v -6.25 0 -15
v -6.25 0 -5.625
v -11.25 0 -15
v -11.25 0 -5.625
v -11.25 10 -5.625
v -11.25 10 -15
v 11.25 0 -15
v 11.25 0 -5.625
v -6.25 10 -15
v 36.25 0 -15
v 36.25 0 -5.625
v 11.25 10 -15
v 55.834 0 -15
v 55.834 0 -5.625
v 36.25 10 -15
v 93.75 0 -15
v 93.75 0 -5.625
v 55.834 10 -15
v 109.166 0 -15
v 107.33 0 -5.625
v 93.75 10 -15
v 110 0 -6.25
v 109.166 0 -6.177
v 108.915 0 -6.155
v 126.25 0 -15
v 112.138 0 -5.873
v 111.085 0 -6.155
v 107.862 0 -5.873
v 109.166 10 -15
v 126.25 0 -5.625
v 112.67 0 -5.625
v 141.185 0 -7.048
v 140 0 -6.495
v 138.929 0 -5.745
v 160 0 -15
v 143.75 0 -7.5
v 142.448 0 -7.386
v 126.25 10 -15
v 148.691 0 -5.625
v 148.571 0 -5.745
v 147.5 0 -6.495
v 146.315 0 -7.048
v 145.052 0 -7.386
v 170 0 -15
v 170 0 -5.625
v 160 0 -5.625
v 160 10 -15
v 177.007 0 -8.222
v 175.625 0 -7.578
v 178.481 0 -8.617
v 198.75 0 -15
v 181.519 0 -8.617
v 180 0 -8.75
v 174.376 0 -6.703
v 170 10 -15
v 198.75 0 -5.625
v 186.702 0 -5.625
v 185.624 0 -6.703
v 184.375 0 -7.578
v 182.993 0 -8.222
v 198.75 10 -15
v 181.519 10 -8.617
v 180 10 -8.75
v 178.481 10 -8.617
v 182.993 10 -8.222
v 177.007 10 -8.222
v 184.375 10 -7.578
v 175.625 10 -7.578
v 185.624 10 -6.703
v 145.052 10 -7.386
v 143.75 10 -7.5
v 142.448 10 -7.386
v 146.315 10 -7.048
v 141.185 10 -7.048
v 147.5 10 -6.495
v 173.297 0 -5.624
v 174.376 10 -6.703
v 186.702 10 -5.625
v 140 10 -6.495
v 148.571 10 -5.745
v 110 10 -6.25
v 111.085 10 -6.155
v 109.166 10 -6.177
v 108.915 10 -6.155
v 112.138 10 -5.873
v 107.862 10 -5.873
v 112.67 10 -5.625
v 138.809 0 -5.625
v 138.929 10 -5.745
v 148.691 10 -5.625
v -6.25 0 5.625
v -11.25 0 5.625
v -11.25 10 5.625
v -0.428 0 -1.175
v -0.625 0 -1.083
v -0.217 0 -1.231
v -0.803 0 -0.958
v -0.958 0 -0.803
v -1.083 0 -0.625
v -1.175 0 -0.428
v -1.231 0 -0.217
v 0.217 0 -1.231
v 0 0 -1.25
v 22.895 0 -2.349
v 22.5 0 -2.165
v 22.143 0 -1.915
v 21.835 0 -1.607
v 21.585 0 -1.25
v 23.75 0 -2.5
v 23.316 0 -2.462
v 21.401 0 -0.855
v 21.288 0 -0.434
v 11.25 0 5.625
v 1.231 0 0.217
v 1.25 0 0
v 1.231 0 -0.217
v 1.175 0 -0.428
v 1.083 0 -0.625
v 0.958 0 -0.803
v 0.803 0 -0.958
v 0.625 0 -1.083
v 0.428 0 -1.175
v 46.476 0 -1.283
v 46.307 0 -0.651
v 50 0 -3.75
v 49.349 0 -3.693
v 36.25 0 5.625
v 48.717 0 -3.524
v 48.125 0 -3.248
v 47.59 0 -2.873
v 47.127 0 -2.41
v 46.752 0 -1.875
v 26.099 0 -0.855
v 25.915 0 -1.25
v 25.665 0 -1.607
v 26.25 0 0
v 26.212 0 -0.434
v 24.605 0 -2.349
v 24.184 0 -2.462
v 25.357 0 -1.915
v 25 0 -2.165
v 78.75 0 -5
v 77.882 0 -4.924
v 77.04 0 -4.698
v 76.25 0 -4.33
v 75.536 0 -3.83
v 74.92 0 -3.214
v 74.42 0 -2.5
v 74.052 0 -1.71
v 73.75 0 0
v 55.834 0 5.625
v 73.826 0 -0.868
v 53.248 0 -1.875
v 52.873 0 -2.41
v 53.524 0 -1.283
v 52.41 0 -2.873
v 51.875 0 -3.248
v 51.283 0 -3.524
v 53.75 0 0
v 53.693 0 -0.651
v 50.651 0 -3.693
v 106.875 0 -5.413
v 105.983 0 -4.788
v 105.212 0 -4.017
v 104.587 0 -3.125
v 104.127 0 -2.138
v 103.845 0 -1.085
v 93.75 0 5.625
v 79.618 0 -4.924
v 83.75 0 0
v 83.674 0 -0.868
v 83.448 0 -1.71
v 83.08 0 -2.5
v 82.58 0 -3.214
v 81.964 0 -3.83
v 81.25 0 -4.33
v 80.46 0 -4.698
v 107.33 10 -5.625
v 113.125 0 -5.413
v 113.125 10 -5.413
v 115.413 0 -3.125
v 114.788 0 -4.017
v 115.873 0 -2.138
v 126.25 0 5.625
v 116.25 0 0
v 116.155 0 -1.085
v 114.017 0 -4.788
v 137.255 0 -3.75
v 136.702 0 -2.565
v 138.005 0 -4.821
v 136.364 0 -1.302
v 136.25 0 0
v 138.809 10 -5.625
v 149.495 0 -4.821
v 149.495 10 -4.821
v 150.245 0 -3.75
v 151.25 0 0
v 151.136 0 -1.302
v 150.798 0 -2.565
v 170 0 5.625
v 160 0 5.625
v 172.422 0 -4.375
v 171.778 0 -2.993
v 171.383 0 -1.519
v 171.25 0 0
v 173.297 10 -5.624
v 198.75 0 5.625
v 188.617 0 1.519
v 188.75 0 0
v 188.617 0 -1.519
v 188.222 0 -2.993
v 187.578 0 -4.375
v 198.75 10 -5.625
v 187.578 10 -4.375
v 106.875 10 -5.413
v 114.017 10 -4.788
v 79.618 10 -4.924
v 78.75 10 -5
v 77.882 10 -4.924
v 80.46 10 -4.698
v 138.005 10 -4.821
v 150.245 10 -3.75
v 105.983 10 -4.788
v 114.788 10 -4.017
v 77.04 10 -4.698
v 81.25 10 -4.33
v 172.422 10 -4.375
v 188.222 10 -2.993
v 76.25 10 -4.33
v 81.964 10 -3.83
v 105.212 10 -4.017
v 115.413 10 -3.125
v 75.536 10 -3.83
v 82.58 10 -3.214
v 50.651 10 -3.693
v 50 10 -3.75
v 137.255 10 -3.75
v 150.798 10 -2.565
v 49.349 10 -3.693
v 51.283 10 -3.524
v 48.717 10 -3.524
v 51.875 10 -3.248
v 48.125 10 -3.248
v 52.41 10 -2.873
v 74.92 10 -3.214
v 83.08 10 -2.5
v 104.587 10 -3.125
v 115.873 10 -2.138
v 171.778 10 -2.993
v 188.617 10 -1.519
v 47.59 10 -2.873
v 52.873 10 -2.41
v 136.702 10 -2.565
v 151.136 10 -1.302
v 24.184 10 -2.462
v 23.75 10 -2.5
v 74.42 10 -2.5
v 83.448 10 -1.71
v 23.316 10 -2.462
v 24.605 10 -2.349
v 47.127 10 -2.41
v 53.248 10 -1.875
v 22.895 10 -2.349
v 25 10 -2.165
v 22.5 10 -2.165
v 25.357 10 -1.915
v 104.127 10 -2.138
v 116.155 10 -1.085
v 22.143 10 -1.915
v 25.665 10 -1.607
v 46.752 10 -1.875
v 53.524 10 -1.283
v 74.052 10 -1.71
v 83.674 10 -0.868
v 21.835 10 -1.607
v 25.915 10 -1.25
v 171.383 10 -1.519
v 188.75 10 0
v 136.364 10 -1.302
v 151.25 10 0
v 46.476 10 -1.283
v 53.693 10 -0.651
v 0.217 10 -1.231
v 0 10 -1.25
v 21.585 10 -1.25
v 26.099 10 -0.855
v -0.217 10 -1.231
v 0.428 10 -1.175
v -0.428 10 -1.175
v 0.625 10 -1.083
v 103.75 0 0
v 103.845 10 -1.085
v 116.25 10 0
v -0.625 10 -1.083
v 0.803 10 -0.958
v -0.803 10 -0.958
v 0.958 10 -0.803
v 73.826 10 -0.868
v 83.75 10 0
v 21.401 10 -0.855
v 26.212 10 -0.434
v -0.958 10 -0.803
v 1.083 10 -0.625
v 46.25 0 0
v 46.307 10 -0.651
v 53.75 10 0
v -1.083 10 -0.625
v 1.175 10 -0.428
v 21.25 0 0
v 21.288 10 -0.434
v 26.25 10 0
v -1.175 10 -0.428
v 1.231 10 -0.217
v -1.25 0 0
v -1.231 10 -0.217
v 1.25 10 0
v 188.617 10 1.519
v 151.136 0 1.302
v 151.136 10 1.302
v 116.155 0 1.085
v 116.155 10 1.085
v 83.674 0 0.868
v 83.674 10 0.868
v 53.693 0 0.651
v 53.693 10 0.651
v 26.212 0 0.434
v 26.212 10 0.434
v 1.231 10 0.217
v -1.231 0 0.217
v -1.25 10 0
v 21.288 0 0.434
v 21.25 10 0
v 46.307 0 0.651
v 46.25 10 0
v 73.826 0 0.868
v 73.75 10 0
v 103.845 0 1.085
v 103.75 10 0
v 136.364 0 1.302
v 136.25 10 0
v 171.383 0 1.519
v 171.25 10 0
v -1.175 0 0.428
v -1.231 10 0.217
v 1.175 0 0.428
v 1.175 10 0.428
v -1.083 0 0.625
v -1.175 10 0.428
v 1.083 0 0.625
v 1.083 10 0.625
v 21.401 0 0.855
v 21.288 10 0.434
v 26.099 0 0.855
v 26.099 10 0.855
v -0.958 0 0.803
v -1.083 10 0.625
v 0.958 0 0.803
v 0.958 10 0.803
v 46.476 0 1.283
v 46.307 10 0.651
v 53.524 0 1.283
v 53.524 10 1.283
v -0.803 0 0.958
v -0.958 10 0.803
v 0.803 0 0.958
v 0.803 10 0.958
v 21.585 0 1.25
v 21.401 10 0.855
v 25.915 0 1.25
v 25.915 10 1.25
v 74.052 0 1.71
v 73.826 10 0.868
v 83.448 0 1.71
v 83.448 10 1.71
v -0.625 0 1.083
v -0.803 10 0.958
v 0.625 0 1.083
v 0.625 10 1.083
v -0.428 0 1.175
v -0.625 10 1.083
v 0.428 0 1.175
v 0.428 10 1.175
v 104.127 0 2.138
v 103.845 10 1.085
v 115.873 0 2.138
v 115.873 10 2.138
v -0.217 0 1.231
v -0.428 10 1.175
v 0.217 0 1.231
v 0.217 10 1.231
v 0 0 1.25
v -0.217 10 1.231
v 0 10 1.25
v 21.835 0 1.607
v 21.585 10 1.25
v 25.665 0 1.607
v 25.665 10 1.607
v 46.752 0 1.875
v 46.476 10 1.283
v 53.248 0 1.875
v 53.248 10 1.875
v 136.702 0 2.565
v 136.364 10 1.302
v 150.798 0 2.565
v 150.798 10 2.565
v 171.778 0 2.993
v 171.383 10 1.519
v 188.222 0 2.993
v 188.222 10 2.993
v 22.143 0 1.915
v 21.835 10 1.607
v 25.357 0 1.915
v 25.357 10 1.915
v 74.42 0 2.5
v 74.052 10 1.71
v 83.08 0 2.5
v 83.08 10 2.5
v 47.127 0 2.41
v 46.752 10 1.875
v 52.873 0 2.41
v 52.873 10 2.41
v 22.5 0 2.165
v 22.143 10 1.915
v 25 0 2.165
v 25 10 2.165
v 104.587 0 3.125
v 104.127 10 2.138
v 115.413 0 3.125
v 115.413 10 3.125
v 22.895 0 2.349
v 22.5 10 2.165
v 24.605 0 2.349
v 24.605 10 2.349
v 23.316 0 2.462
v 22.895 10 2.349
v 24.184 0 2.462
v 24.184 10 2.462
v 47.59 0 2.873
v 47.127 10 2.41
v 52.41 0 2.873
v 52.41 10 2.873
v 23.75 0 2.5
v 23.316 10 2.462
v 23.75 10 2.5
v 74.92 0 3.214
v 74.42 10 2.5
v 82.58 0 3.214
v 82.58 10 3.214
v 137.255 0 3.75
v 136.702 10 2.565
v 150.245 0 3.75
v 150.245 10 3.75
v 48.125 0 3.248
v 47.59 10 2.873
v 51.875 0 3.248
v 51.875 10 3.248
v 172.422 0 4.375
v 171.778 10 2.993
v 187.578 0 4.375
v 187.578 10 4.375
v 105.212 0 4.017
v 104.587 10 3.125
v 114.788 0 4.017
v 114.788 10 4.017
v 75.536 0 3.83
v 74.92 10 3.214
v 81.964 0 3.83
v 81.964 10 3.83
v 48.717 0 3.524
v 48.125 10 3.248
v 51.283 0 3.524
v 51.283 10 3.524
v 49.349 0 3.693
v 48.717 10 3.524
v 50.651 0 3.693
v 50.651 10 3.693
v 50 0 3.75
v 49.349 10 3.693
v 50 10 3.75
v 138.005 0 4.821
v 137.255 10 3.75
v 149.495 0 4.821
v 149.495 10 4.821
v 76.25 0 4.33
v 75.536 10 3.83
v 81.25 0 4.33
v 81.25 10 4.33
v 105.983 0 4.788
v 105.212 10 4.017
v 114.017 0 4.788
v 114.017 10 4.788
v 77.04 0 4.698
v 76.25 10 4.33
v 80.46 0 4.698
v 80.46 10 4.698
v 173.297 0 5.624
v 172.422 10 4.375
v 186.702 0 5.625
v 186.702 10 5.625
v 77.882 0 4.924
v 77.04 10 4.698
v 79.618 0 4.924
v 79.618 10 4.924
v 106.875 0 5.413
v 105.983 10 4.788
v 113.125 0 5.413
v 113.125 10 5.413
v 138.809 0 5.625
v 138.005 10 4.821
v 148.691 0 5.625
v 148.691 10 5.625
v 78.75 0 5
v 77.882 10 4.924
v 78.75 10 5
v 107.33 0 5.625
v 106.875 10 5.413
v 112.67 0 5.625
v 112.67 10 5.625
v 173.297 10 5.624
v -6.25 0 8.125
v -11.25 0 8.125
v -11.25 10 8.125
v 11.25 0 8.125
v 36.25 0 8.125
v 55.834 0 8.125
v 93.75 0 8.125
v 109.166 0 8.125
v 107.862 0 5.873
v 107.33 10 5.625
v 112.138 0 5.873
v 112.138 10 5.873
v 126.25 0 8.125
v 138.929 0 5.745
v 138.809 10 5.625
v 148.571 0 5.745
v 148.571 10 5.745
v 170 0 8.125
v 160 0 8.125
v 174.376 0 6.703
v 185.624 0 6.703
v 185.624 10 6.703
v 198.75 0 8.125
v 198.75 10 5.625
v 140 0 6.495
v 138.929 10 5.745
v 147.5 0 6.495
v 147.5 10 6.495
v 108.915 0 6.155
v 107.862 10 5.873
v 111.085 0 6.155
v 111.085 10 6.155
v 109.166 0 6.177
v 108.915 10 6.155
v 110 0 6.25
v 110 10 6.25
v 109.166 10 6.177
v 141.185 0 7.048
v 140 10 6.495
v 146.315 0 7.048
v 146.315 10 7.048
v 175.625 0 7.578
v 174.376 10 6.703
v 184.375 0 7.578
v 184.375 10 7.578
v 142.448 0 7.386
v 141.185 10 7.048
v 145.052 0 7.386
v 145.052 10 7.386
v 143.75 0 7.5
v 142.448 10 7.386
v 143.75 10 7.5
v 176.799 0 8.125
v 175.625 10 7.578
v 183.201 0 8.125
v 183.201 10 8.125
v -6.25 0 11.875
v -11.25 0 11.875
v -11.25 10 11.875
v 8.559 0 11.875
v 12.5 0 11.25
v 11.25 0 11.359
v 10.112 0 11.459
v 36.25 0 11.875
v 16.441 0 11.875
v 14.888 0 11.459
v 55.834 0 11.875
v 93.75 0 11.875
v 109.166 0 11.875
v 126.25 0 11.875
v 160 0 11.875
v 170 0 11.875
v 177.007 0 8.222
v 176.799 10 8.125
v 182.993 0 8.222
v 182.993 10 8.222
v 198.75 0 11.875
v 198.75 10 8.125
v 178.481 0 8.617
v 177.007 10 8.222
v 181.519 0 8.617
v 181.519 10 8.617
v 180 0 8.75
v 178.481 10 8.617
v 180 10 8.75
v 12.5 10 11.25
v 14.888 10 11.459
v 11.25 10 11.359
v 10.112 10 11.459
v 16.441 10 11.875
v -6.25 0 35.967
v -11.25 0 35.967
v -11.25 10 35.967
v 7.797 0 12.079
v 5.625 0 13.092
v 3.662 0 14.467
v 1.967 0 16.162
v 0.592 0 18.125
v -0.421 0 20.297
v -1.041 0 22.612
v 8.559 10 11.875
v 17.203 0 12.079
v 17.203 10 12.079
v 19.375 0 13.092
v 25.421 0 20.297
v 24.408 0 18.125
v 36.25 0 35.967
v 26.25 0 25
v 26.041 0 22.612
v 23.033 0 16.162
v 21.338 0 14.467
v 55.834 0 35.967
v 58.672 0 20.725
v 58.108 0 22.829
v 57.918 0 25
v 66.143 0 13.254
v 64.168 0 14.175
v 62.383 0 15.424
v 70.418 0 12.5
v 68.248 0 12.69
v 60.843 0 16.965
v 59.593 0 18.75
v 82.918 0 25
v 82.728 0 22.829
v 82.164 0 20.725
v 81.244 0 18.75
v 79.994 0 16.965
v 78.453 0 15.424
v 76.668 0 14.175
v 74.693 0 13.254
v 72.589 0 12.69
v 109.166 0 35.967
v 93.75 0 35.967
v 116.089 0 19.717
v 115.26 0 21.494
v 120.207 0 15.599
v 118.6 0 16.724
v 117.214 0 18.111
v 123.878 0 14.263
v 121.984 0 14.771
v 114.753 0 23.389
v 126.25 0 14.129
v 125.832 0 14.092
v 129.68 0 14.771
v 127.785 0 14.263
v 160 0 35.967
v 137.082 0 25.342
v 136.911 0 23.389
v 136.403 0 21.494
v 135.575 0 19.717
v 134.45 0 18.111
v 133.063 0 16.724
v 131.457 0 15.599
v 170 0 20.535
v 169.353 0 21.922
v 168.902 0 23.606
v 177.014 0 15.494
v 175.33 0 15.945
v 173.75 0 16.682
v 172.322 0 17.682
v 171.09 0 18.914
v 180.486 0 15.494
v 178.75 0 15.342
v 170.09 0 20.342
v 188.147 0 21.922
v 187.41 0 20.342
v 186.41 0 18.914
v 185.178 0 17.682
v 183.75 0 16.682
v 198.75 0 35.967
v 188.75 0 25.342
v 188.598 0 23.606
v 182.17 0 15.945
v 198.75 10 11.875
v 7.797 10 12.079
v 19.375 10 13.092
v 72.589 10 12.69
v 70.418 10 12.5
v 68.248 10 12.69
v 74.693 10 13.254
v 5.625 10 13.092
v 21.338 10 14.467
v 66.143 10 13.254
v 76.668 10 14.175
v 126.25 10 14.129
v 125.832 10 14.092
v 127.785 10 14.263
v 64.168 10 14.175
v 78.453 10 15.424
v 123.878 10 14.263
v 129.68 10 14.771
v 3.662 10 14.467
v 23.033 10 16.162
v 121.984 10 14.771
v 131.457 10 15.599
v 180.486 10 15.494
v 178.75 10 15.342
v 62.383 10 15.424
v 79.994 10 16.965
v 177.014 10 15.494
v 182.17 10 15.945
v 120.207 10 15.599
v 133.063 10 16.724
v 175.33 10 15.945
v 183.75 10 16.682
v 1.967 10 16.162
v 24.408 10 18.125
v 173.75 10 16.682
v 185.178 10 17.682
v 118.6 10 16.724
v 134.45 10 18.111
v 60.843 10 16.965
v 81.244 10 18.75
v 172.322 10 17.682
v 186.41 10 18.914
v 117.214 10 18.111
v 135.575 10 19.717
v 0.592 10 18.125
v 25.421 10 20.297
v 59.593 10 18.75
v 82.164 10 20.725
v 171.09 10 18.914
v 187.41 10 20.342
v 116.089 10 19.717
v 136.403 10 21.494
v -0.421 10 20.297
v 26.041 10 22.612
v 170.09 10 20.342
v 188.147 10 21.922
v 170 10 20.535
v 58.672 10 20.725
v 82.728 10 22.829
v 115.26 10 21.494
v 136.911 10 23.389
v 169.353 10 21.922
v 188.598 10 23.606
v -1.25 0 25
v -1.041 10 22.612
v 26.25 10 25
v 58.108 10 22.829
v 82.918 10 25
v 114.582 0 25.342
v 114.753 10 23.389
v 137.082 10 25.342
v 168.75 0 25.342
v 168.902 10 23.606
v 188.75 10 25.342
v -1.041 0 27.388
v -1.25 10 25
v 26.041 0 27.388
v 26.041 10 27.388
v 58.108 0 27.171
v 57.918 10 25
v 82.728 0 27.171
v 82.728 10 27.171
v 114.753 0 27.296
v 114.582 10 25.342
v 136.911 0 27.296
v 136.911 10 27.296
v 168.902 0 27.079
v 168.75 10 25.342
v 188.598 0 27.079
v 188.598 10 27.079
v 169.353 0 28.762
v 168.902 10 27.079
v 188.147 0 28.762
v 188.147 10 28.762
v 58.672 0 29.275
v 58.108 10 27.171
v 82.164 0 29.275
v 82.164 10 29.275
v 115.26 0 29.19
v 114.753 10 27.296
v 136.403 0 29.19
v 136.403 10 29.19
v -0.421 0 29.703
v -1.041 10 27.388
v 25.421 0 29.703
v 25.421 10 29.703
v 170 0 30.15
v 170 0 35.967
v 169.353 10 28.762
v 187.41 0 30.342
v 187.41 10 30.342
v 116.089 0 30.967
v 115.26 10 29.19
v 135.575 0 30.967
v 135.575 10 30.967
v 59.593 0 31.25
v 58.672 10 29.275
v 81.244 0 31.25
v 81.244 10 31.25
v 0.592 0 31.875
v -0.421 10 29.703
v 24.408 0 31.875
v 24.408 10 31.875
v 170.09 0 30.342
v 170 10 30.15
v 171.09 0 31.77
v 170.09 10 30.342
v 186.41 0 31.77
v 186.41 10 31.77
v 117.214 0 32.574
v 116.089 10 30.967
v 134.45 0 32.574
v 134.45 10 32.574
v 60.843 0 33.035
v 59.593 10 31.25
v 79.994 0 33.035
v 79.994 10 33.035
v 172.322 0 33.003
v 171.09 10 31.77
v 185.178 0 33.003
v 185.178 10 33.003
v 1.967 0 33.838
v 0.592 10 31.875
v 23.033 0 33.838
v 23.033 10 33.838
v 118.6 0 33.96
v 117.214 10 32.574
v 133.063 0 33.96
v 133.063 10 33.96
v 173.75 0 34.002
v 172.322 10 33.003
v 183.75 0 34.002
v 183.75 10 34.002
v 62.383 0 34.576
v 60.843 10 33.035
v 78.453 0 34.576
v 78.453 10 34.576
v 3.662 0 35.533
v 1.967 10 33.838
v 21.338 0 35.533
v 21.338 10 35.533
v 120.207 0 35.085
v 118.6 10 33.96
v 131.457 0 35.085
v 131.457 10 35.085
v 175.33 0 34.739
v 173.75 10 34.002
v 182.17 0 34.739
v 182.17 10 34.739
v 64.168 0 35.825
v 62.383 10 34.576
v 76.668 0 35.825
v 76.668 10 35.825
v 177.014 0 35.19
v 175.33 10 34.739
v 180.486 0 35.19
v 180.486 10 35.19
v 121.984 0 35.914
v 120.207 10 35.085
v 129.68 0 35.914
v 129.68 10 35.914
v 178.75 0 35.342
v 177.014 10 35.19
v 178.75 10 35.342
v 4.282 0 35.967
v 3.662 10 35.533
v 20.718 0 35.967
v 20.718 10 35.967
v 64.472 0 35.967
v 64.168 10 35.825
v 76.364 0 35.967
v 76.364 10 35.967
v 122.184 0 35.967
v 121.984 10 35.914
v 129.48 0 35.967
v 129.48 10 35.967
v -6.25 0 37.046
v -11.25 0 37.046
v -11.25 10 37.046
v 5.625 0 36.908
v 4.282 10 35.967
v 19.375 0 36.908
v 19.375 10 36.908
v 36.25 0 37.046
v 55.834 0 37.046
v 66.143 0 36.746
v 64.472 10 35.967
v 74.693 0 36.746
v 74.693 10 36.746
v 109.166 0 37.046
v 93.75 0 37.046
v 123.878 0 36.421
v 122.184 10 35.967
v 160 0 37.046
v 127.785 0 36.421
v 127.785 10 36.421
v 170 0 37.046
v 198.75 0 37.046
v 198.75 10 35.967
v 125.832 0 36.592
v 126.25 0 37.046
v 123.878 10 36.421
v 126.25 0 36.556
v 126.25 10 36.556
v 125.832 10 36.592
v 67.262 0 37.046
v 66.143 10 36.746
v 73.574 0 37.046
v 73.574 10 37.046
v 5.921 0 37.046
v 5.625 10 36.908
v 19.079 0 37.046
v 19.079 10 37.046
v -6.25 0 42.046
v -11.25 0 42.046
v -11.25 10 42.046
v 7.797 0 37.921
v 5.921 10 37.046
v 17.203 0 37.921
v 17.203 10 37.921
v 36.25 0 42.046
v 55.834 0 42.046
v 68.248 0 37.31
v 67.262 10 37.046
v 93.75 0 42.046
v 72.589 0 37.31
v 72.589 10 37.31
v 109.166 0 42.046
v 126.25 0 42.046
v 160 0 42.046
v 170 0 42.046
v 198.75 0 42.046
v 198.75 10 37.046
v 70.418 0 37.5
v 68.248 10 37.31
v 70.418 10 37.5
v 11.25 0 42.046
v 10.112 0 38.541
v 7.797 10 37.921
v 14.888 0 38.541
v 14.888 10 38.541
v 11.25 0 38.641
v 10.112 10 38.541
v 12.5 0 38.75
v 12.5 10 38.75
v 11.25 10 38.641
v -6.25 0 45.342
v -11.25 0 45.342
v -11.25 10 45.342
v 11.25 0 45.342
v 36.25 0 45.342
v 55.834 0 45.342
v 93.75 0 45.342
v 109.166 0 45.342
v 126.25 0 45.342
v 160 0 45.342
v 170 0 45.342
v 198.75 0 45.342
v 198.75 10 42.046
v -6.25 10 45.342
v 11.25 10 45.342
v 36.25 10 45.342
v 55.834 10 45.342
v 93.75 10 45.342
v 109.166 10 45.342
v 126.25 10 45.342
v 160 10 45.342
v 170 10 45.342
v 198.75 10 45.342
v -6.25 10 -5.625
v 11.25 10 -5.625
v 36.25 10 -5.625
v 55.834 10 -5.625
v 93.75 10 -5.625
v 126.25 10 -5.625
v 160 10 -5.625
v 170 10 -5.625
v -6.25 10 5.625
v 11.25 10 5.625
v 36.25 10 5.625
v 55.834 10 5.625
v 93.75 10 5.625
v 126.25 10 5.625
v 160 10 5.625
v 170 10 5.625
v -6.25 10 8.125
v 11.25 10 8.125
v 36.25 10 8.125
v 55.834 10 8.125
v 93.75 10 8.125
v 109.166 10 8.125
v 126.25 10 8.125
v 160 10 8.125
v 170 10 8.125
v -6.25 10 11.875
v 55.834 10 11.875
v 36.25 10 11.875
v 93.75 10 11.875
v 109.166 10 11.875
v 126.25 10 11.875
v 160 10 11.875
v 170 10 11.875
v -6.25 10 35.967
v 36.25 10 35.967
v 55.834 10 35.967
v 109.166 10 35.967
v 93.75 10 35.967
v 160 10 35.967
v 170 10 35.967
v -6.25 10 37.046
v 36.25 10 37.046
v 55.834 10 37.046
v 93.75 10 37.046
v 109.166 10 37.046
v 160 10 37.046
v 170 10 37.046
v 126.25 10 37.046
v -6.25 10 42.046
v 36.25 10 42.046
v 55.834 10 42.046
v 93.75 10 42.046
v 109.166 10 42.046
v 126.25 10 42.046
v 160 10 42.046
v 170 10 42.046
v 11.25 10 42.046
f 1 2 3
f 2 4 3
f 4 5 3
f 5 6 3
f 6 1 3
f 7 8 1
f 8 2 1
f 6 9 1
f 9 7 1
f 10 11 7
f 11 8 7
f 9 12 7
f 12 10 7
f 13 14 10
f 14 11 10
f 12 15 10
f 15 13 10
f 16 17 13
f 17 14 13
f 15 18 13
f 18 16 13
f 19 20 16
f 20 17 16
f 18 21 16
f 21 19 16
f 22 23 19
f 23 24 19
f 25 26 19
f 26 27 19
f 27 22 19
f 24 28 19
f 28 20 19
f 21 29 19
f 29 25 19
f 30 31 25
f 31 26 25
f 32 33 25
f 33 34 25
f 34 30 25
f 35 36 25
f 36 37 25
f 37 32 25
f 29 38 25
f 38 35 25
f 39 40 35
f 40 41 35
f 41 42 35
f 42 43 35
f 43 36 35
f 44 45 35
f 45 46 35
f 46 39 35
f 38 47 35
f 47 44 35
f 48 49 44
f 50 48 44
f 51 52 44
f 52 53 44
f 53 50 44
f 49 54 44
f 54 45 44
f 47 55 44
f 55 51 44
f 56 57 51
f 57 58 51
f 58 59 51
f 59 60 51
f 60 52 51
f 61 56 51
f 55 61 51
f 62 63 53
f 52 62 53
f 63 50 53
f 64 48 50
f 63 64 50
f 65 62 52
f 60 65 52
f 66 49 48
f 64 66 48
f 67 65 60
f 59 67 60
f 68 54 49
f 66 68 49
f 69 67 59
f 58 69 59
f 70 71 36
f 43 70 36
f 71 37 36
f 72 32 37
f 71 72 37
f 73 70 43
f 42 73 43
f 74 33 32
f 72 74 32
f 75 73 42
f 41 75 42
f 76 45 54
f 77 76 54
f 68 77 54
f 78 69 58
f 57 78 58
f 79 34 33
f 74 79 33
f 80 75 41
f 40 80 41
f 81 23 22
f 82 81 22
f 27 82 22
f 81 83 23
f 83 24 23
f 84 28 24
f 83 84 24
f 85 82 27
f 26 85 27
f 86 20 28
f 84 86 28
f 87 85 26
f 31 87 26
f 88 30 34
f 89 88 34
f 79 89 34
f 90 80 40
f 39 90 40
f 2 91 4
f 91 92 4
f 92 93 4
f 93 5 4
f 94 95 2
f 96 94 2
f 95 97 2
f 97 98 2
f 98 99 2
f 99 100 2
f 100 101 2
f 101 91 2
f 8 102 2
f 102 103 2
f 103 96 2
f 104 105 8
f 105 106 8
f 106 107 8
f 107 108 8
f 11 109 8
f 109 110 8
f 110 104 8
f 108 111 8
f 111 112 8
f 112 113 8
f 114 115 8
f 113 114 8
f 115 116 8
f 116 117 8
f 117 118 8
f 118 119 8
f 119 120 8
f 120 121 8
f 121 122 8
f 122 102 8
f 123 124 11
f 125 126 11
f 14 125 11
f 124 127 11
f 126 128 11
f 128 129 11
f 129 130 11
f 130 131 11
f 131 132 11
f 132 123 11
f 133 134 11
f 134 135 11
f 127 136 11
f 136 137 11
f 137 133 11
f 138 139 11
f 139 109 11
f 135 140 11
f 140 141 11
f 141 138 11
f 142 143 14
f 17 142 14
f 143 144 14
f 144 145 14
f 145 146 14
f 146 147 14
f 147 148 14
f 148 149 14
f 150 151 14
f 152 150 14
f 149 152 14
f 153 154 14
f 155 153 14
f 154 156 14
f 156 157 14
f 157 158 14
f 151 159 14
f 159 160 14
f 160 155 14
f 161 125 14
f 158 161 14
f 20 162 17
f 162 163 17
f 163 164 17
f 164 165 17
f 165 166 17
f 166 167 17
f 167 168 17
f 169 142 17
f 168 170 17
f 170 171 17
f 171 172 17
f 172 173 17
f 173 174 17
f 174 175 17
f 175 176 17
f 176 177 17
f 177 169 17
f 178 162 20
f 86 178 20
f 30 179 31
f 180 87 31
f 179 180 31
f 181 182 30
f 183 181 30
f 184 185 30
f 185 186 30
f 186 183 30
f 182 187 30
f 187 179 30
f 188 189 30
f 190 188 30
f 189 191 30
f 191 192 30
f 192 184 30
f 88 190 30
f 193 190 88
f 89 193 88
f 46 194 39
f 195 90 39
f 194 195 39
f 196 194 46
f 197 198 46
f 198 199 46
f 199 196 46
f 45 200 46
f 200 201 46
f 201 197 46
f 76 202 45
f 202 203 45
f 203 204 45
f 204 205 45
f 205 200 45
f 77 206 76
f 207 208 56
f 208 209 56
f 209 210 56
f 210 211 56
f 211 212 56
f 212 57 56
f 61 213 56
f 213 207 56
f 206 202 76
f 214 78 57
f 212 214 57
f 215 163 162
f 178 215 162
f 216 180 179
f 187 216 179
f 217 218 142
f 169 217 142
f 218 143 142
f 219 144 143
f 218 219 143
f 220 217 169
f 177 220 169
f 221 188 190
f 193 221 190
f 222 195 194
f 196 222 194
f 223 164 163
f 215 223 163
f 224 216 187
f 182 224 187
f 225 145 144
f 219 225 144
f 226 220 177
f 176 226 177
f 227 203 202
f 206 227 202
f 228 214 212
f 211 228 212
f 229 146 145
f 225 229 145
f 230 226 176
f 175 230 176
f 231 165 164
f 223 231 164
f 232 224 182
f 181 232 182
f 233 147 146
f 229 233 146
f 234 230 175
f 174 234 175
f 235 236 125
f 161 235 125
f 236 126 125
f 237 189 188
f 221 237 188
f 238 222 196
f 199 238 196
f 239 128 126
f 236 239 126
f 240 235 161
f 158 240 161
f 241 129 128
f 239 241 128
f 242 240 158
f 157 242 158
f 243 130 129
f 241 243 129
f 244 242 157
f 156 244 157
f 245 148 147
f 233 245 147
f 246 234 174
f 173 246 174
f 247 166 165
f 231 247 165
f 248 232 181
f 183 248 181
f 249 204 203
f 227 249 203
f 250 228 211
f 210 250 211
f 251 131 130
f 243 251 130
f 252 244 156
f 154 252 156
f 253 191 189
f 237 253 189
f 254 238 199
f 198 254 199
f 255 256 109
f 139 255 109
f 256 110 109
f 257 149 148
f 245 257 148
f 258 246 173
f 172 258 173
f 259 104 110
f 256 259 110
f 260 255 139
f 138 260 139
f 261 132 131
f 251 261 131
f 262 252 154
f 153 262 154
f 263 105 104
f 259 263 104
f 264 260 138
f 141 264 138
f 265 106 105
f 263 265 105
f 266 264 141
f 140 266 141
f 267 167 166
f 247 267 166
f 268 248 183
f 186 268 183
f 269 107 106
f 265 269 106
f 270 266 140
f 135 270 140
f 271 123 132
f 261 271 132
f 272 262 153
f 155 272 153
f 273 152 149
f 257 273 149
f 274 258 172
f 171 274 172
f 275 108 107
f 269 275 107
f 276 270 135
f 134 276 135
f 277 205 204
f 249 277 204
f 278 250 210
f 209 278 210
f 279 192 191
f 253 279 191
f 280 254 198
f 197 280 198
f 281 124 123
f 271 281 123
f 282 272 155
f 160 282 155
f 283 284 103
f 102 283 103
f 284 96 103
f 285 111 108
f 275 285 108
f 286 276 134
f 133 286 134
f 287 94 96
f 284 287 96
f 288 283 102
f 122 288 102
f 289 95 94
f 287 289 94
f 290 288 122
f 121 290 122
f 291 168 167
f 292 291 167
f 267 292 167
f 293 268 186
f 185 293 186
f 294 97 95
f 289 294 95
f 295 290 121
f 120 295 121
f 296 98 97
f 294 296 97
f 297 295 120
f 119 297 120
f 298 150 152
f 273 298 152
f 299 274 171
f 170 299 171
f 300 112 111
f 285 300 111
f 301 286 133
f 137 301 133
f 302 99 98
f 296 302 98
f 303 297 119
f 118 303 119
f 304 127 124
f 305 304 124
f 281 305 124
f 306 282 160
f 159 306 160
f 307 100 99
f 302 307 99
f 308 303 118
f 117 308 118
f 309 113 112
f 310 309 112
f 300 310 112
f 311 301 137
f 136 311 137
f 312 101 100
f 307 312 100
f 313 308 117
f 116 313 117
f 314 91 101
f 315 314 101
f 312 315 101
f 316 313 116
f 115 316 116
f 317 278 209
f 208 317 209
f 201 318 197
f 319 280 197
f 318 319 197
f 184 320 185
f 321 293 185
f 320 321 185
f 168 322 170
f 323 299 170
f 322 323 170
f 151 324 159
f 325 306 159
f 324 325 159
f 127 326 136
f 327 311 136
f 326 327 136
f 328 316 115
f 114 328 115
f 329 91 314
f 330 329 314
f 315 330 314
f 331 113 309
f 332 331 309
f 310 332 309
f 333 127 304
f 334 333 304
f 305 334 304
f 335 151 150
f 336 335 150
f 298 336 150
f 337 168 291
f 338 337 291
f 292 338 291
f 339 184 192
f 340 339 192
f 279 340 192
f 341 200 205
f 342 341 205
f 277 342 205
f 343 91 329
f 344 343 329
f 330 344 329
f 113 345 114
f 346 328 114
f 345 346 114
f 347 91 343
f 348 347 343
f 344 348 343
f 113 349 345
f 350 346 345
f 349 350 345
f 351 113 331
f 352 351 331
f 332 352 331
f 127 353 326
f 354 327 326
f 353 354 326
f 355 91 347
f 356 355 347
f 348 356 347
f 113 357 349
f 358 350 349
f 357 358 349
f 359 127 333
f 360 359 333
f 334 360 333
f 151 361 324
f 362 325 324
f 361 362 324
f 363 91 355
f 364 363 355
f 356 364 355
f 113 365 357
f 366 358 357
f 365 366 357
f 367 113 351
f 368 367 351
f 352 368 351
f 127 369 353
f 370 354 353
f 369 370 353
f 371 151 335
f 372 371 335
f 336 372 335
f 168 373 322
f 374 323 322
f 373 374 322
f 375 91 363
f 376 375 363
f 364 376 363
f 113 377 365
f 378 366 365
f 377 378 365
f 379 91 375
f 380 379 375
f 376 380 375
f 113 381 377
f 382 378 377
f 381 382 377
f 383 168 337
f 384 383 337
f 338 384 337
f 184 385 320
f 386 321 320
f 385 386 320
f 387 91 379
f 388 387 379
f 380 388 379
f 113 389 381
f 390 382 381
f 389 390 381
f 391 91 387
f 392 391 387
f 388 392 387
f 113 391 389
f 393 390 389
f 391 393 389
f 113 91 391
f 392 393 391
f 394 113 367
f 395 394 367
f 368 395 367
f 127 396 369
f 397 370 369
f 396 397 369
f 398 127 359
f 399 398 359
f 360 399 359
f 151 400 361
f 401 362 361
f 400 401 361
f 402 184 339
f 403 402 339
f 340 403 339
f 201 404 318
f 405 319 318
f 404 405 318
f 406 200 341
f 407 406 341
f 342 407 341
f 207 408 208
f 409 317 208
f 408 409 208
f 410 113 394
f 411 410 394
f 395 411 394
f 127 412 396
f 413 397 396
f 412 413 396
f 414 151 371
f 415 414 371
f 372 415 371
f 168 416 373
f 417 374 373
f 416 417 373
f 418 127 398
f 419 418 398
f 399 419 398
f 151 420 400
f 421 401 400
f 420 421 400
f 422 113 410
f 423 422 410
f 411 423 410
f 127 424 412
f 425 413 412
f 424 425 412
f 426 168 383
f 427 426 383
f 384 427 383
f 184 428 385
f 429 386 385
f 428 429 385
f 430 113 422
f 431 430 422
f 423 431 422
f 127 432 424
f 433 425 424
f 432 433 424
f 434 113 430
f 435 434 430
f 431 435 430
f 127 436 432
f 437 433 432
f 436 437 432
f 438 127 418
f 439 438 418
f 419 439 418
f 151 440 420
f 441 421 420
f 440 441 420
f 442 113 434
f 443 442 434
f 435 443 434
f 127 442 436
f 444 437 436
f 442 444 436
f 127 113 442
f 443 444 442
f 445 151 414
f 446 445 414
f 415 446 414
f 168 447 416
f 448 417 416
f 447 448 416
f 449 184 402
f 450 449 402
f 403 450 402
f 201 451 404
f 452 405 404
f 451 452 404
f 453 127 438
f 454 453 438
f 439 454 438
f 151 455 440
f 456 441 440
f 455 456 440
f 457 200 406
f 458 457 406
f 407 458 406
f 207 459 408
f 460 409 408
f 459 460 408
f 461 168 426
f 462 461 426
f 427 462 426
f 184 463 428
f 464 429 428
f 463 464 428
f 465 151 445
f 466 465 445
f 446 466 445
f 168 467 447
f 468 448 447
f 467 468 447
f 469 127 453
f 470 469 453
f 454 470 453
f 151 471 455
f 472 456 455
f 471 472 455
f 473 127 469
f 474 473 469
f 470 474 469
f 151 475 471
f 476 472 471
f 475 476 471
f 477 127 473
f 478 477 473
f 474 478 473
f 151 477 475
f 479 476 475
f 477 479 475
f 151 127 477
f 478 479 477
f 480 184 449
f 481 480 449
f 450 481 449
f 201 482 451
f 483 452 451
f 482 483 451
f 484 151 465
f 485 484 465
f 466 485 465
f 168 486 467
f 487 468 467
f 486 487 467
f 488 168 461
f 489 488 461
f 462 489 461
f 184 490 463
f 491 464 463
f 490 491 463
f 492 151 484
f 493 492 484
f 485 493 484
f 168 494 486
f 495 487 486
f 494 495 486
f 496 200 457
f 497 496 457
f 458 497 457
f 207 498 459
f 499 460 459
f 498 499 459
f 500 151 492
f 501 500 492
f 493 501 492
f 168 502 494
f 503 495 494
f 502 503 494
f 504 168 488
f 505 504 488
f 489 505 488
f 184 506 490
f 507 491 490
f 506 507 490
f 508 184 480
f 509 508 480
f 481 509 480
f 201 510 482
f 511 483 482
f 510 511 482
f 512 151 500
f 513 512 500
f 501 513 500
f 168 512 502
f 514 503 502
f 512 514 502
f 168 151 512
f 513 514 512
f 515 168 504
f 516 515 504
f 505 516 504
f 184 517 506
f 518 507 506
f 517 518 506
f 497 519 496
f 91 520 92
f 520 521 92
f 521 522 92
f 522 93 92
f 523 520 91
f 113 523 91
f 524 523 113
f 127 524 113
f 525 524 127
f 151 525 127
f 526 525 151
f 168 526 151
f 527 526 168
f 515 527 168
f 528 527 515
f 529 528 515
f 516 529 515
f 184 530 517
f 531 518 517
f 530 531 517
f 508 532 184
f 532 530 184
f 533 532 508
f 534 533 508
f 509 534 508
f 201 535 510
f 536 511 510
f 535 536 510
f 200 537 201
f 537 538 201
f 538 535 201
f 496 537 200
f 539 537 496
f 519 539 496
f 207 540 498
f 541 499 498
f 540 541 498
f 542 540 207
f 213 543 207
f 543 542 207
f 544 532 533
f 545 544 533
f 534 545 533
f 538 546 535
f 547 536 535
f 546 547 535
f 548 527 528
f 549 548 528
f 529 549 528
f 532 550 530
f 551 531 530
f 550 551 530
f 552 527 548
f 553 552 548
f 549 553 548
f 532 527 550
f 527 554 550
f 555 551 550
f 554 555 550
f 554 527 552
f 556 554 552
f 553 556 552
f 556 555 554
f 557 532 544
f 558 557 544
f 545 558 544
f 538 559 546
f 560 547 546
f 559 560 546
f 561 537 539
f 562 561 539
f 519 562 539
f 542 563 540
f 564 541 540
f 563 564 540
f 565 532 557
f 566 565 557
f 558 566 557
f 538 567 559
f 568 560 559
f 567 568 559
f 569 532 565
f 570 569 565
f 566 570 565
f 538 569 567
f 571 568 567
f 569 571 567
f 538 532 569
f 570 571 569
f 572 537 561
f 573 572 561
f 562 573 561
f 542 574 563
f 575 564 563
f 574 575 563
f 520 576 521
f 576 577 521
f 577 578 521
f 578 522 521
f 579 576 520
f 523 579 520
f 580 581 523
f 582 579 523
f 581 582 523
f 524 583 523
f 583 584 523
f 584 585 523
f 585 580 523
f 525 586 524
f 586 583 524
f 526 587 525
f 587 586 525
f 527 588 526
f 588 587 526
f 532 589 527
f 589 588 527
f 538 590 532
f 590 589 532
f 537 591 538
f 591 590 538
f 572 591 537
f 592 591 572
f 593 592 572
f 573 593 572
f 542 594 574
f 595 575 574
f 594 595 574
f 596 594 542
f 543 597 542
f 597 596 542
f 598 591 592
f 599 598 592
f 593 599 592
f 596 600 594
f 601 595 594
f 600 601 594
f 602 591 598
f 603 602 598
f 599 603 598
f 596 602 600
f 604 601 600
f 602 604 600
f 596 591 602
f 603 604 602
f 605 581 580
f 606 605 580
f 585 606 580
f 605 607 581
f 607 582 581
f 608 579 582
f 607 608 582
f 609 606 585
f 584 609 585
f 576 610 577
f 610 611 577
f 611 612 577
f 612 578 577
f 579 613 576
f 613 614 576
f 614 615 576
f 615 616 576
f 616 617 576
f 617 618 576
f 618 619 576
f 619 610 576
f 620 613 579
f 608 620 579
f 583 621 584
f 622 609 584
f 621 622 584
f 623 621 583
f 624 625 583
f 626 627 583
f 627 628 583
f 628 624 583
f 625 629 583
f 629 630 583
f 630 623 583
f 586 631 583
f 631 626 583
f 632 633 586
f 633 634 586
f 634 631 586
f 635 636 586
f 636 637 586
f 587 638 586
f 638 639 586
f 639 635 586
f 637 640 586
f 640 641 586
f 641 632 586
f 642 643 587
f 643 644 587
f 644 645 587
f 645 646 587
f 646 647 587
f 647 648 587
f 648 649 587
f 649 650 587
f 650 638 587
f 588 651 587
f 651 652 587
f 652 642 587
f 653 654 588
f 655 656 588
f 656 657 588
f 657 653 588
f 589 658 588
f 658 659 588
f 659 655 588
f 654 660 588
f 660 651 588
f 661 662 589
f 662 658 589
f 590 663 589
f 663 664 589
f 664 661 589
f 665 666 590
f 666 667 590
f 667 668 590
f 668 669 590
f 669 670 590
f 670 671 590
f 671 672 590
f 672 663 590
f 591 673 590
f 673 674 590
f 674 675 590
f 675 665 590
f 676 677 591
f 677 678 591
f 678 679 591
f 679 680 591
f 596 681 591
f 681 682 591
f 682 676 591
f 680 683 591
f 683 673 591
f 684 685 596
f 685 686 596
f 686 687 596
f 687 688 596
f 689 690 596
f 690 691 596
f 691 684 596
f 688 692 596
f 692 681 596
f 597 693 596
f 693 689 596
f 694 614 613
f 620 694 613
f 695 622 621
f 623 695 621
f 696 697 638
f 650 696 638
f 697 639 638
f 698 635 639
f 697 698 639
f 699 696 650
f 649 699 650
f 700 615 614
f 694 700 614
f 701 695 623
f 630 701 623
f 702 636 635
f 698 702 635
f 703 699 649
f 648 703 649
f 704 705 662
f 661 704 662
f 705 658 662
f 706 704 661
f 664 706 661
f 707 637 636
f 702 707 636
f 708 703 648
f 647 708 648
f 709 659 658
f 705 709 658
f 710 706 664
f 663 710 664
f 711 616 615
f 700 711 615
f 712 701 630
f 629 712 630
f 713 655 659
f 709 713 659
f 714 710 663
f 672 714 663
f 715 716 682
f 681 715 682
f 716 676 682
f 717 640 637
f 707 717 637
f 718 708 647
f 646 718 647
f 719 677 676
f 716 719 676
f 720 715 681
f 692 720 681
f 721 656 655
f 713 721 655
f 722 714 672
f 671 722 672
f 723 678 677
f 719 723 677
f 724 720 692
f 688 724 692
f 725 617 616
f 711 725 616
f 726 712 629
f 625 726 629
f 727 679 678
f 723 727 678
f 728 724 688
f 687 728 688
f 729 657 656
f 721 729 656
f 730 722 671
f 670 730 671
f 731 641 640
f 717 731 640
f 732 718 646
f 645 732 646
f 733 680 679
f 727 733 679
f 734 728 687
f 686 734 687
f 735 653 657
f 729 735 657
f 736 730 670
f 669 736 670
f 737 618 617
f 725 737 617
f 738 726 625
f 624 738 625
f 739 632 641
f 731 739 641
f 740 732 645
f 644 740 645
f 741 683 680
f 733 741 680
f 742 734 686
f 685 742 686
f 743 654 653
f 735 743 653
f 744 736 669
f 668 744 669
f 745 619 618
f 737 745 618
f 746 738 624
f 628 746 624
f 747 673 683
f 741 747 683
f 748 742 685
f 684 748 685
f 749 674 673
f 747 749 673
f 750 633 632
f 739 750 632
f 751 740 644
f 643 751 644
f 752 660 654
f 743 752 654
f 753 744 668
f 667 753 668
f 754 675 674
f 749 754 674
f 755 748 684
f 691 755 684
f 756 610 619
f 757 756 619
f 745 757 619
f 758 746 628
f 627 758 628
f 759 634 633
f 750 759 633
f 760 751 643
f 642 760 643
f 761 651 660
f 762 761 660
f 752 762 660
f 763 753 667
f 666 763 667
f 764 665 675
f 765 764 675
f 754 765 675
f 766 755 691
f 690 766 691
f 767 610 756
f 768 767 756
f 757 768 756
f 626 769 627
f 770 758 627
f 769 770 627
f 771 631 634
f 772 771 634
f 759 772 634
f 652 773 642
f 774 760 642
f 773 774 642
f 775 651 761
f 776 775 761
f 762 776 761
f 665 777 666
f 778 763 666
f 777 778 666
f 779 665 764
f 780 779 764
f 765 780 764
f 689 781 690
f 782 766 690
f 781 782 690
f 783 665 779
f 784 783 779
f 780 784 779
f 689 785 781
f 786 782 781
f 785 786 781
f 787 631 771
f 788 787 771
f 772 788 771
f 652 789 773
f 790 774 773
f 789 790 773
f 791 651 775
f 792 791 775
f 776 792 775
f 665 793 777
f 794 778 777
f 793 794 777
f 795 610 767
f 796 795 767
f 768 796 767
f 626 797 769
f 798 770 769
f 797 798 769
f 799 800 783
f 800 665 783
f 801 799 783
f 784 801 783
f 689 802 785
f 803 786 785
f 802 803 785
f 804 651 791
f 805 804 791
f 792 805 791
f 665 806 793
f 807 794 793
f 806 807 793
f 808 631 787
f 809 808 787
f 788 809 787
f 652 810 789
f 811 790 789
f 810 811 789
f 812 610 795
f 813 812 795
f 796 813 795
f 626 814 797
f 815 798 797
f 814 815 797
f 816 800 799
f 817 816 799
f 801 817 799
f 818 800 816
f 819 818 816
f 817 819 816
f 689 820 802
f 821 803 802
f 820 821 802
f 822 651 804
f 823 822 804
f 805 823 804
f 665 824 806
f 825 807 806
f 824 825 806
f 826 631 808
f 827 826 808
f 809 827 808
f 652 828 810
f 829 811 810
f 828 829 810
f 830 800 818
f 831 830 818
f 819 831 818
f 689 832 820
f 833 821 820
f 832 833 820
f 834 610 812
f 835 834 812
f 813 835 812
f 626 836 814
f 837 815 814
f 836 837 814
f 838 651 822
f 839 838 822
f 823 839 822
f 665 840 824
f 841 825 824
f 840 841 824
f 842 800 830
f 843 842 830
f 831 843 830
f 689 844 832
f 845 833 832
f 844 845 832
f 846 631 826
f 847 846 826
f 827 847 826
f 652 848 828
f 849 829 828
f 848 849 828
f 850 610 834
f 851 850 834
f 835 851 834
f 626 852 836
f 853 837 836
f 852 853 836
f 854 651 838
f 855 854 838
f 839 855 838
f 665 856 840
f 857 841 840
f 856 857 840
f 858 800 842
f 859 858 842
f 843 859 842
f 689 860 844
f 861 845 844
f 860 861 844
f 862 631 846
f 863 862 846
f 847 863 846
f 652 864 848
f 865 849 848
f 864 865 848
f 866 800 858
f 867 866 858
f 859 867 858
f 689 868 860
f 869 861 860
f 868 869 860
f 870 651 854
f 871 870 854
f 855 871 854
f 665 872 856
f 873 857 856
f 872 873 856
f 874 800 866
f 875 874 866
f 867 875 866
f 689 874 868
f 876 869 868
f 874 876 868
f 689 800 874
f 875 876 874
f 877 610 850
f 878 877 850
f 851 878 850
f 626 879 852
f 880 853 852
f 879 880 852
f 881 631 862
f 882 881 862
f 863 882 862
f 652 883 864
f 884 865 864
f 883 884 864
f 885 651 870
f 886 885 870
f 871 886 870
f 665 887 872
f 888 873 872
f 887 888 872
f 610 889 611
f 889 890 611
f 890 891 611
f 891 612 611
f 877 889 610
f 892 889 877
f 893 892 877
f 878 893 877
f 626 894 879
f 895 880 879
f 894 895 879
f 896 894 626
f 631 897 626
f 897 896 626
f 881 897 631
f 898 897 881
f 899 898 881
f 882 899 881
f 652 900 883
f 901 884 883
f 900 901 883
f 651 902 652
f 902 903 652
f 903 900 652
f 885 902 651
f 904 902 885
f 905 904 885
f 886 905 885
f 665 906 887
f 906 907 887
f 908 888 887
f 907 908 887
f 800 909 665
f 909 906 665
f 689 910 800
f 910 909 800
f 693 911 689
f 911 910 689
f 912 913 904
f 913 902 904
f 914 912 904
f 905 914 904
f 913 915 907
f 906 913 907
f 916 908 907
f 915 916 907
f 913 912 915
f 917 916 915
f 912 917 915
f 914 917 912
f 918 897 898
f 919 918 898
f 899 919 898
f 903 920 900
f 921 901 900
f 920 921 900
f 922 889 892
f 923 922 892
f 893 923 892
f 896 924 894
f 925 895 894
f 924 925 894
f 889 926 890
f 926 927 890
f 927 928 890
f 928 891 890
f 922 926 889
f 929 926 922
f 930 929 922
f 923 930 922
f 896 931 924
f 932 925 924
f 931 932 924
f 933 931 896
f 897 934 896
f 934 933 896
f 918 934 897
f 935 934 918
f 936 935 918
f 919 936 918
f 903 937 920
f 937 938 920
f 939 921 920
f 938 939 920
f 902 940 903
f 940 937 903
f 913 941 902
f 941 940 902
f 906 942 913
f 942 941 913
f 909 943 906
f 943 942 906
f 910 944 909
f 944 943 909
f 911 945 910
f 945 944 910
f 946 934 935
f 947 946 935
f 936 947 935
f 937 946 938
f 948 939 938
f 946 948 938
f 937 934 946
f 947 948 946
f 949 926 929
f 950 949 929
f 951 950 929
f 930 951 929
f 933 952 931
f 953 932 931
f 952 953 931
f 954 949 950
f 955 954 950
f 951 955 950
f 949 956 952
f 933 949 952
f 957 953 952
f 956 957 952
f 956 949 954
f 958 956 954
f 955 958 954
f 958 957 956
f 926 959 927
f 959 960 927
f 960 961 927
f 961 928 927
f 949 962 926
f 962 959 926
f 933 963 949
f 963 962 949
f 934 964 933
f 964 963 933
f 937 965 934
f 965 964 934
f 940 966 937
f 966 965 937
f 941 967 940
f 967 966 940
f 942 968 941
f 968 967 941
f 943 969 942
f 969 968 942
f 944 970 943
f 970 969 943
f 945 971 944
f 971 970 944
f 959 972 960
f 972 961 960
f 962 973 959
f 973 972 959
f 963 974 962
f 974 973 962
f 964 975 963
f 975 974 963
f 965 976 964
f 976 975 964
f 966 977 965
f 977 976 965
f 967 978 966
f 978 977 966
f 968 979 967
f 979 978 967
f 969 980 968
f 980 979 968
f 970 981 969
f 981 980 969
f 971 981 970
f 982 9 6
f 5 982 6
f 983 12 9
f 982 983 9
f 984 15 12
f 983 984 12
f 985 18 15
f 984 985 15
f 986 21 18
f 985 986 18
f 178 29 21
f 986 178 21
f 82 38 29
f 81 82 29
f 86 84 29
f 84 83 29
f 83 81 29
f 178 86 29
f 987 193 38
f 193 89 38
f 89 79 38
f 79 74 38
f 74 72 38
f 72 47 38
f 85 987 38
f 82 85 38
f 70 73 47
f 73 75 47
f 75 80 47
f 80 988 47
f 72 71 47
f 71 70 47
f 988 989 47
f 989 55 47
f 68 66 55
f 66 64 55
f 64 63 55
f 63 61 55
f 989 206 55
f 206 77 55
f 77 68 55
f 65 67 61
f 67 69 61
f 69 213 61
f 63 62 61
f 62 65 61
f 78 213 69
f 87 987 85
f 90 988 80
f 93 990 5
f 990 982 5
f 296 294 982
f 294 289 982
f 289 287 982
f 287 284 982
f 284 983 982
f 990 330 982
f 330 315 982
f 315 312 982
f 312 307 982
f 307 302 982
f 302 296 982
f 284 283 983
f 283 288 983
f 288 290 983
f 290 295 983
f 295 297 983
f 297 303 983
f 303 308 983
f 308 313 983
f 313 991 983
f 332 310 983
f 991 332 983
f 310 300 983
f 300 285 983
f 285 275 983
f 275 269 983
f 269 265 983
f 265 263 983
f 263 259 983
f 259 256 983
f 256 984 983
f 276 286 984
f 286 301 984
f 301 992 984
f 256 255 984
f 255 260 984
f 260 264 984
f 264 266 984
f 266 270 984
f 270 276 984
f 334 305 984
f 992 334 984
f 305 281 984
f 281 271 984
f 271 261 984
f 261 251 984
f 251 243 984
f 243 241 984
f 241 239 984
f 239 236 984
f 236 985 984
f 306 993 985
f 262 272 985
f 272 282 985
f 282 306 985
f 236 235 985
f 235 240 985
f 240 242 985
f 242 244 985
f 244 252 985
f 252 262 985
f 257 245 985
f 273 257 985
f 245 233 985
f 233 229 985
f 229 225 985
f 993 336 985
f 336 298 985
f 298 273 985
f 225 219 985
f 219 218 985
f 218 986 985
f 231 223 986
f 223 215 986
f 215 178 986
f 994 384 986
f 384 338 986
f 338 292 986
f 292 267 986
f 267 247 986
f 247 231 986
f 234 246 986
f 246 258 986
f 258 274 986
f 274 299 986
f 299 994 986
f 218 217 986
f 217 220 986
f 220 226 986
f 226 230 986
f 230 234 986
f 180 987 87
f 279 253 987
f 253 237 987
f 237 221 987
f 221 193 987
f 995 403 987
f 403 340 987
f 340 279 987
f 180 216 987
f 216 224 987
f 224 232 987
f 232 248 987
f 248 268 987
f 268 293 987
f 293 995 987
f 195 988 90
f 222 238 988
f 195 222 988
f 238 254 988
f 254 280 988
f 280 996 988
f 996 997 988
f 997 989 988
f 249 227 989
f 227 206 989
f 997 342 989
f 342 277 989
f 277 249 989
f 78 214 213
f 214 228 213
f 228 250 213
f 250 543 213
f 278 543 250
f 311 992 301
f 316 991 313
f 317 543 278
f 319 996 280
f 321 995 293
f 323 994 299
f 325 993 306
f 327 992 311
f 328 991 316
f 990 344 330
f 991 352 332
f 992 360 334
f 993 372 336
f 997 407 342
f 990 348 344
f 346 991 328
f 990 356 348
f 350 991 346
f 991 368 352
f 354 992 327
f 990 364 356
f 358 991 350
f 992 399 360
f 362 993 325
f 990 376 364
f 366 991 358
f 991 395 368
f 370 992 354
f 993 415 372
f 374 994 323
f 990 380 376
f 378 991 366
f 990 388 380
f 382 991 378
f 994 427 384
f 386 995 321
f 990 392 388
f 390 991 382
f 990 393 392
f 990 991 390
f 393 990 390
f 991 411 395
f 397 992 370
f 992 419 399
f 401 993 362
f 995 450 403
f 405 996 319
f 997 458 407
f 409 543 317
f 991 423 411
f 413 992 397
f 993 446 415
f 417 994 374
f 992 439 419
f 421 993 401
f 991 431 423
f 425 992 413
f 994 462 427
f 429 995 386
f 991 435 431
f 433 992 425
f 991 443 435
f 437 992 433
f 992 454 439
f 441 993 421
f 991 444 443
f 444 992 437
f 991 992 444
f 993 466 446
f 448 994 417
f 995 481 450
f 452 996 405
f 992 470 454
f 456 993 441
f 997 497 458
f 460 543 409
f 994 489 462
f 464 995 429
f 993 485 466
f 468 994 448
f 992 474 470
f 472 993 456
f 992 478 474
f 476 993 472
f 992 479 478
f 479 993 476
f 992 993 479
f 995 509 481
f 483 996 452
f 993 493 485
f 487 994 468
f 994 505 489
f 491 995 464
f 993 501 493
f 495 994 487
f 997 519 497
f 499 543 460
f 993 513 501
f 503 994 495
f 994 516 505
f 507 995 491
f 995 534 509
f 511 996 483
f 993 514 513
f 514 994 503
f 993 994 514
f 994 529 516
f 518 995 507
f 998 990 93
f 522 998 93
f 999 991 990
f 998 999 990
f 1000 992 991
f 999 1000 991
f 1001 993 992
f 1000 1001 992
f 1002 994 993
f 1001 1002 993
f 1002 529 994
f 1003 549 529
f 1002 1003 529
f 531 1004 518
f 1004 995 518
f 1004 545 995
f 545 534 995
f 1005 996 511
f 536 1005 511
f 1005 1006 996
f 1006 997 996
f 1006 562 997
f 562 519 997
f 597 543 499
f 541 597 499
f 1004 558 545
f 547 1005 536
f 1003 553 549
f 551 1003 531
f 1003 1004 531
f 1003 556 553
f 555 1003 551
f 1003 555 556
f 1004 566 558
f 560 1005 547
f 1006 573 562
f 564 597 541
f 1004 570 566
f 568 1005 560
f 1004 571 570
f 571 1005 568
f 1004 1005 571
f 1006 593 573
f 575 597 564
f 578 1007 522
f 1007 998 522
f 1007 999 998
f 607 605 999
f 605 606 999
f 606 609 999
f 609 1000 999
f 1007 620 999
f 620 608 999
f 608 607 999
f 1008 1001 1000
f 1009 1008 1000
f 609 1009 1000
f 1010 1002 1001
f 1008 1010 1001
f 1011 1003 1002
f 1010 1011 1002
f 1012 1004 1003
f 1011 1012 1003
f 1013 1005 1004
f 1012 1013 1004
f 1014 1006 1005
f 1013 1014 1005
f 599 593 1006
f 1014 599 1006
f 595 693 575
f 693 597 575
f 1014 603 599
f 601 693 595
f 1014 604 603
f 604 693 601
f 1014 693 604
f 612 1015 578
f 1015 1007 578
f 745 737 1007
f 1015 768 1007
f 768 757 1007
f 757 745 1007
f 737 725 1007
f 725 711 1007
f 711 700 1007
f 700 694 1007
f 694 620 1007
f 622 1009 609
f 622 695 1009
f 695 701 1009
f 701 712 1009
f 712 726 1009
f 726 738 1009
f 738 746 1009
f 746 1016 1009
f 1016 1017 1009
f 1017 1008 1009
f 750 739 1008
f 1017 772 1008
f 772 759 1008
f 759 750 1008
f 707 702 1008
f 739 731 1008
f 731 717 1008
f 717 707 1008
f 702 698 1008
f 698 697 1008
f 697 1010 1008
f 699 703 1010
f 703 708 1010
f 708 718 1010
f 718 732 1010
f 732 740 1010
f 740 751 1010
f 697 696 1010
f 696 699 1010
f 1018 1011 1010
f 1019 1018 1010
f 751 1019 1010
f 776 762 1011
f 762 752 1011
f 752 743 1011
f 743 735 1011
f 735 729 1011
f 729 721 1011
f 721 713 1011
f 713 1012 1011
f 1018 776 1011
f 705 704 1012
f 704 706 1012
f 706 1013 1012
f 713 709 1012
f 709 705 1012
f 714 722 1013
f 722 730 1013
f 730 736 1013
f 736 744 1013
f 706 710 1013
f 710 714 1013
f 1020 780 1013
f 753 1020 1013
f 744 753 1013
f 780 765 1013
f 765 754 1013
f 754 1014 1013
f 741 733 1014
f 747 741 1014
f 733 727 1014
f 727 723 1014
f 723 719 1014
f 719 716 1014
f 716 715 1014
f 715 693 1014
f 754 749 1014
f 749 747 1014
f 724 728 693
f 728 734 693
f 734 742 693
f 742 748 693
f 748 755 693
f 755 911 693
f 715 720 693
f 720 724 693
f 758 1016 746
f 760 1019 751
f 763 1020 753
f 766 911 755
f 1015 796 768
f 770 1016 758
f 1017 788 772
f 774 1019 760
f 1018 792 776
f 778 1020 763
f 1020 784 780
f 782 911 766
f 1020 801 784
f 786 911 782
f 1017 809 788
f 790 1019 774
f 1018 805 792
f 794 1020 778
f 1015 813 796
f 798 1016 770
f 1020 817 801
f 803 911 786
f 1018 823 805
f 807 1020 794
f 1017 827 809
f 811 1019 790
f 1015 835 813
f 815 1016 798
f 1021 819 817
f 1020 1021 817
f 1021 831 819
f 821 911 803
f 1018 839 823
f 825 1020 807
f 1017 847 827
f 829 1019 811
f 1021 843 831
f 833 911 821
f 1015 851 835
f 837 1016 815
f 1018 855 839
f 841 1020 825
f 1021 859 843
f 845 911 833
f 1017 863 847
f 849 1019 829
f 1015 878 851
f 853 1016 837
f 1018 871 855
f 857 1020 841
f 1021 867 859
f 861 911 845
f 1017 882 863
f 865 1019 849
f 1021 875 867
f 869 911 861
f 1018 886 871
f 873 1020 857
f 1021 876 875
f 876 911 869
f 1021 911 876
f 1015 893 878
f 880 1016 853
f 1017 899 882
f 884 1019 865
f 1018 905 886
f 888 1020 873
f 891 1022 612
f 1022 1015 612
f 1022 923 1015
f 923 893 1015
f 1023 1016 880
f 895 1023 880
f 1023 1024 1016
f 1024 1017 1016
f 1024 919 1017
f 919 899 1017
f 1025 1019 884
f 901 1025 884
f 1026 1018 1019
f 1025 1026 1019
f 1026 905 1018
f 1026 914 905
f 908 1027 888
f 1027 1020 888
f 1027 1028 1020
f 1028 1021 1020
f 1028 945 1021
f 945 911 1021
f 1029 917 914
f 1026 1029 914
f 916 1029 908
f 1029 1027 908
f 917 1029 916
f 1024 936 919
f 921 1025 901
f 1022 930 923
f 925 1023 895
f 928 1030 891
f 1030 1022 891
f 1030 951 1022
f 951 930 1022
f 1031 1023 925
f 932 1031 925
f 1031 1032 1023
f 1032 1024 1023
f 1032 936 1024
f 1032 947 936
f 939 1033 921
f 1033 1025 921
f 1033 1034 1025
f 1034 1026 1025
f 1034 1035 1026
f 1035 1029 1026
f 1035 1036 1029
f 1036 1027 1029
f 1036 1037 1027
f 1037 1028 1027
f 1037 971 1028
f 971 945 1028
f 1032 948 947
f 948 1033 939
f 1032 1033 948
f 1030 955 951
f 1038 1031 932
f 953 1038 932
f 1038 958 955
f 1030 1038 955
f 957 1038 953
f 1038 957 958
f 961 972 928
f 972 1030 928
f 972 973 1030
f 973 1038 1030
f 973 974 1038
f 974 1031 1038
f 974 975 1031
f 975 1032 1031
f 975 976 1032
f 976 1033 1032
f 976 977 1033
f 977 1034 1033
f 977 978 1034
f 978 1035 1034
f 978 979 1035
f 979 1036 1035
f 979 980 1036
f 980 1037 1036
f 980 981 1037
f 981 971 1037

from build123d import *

# Parameters (mm, degrees)
SKETCH1_W           = 210
SKETCH1_H           = 60.3421622
SKETCH1_R           = 1.25
SKETCH1_R_2         = 2.5
SKETCH1_R_3         = 3.75
SKETCH1_R_4         = 5
SKETCH1_R_5         = 6.25
SKETCH1_R_6         = 7.5
SKETCH1_R_7         = 8.75
SKETCH1_R_8         = 10
SKETCH1_R_9         = 11.25
SKETCH1_R_10        = 12.5
SKETCH1_R_11        = 13.75
BOSS_EXTRUDE1_DEPTH = 10


with BuildPart() as part:
    # Sketch1 → Boss-Extrude1 (new body)
    with BuildSketch(Plane(origin=(0, 0, 0), x_dir=(1, 0, 0), z_dir=(0, 1, 0))):
        with Locations((93.75, -15.1710811)):
            Rectangle(SKETCH1_W, SKETCH1_H)
        Circle(SKETCH1_R, mode=Mode.SUBTRACT)
        with Locations((23.75, 0)):
            Circle(SKETCH1_R_2, mode=Mode.SUBTRACT)
        with Locations((50, 0)):
            Circle(SKETCH1_R_3, mode=Mode.SUBTRACT)
        with Locations((78.75, 0)):
            Circle(SKETCH1_R_4, mode=Mode.SUBTRACT)
        with Locations((110, 0)):
            Circle(SKETCH1_R_5, mode=Mode.SUBTRACT)
        with Locations((143.75, 0)):
            Circle(SKETCH1_R_6, mode=Mode.SUBTRACT)
        with Locations((180, 0)):
            Circle(SKETCH1_R_7, mode=Mode.SUBTRACT)
        with Locations((178.75, -25.3421622)):
            Circle(SKETCH1_R_8, mode=Mode.SUBTRACT)
        with Locations((125.831772041, -25.3421622)):
            Circle(SKETCH1_R_9, mode=Mode.SUBTRACT)
        with Locations((70.418227959, -25)):
            Circle(SKETCH1_R_10, mode=Mode.SUBTRACT)
        with Locations((12.5, -25)):
            Circle(SKETCH1_R_11, mode=Mode.SUBTRACT)
    extrude(amount=BOSS_EXTRUDE1_DEPTH)


solid = part.part
